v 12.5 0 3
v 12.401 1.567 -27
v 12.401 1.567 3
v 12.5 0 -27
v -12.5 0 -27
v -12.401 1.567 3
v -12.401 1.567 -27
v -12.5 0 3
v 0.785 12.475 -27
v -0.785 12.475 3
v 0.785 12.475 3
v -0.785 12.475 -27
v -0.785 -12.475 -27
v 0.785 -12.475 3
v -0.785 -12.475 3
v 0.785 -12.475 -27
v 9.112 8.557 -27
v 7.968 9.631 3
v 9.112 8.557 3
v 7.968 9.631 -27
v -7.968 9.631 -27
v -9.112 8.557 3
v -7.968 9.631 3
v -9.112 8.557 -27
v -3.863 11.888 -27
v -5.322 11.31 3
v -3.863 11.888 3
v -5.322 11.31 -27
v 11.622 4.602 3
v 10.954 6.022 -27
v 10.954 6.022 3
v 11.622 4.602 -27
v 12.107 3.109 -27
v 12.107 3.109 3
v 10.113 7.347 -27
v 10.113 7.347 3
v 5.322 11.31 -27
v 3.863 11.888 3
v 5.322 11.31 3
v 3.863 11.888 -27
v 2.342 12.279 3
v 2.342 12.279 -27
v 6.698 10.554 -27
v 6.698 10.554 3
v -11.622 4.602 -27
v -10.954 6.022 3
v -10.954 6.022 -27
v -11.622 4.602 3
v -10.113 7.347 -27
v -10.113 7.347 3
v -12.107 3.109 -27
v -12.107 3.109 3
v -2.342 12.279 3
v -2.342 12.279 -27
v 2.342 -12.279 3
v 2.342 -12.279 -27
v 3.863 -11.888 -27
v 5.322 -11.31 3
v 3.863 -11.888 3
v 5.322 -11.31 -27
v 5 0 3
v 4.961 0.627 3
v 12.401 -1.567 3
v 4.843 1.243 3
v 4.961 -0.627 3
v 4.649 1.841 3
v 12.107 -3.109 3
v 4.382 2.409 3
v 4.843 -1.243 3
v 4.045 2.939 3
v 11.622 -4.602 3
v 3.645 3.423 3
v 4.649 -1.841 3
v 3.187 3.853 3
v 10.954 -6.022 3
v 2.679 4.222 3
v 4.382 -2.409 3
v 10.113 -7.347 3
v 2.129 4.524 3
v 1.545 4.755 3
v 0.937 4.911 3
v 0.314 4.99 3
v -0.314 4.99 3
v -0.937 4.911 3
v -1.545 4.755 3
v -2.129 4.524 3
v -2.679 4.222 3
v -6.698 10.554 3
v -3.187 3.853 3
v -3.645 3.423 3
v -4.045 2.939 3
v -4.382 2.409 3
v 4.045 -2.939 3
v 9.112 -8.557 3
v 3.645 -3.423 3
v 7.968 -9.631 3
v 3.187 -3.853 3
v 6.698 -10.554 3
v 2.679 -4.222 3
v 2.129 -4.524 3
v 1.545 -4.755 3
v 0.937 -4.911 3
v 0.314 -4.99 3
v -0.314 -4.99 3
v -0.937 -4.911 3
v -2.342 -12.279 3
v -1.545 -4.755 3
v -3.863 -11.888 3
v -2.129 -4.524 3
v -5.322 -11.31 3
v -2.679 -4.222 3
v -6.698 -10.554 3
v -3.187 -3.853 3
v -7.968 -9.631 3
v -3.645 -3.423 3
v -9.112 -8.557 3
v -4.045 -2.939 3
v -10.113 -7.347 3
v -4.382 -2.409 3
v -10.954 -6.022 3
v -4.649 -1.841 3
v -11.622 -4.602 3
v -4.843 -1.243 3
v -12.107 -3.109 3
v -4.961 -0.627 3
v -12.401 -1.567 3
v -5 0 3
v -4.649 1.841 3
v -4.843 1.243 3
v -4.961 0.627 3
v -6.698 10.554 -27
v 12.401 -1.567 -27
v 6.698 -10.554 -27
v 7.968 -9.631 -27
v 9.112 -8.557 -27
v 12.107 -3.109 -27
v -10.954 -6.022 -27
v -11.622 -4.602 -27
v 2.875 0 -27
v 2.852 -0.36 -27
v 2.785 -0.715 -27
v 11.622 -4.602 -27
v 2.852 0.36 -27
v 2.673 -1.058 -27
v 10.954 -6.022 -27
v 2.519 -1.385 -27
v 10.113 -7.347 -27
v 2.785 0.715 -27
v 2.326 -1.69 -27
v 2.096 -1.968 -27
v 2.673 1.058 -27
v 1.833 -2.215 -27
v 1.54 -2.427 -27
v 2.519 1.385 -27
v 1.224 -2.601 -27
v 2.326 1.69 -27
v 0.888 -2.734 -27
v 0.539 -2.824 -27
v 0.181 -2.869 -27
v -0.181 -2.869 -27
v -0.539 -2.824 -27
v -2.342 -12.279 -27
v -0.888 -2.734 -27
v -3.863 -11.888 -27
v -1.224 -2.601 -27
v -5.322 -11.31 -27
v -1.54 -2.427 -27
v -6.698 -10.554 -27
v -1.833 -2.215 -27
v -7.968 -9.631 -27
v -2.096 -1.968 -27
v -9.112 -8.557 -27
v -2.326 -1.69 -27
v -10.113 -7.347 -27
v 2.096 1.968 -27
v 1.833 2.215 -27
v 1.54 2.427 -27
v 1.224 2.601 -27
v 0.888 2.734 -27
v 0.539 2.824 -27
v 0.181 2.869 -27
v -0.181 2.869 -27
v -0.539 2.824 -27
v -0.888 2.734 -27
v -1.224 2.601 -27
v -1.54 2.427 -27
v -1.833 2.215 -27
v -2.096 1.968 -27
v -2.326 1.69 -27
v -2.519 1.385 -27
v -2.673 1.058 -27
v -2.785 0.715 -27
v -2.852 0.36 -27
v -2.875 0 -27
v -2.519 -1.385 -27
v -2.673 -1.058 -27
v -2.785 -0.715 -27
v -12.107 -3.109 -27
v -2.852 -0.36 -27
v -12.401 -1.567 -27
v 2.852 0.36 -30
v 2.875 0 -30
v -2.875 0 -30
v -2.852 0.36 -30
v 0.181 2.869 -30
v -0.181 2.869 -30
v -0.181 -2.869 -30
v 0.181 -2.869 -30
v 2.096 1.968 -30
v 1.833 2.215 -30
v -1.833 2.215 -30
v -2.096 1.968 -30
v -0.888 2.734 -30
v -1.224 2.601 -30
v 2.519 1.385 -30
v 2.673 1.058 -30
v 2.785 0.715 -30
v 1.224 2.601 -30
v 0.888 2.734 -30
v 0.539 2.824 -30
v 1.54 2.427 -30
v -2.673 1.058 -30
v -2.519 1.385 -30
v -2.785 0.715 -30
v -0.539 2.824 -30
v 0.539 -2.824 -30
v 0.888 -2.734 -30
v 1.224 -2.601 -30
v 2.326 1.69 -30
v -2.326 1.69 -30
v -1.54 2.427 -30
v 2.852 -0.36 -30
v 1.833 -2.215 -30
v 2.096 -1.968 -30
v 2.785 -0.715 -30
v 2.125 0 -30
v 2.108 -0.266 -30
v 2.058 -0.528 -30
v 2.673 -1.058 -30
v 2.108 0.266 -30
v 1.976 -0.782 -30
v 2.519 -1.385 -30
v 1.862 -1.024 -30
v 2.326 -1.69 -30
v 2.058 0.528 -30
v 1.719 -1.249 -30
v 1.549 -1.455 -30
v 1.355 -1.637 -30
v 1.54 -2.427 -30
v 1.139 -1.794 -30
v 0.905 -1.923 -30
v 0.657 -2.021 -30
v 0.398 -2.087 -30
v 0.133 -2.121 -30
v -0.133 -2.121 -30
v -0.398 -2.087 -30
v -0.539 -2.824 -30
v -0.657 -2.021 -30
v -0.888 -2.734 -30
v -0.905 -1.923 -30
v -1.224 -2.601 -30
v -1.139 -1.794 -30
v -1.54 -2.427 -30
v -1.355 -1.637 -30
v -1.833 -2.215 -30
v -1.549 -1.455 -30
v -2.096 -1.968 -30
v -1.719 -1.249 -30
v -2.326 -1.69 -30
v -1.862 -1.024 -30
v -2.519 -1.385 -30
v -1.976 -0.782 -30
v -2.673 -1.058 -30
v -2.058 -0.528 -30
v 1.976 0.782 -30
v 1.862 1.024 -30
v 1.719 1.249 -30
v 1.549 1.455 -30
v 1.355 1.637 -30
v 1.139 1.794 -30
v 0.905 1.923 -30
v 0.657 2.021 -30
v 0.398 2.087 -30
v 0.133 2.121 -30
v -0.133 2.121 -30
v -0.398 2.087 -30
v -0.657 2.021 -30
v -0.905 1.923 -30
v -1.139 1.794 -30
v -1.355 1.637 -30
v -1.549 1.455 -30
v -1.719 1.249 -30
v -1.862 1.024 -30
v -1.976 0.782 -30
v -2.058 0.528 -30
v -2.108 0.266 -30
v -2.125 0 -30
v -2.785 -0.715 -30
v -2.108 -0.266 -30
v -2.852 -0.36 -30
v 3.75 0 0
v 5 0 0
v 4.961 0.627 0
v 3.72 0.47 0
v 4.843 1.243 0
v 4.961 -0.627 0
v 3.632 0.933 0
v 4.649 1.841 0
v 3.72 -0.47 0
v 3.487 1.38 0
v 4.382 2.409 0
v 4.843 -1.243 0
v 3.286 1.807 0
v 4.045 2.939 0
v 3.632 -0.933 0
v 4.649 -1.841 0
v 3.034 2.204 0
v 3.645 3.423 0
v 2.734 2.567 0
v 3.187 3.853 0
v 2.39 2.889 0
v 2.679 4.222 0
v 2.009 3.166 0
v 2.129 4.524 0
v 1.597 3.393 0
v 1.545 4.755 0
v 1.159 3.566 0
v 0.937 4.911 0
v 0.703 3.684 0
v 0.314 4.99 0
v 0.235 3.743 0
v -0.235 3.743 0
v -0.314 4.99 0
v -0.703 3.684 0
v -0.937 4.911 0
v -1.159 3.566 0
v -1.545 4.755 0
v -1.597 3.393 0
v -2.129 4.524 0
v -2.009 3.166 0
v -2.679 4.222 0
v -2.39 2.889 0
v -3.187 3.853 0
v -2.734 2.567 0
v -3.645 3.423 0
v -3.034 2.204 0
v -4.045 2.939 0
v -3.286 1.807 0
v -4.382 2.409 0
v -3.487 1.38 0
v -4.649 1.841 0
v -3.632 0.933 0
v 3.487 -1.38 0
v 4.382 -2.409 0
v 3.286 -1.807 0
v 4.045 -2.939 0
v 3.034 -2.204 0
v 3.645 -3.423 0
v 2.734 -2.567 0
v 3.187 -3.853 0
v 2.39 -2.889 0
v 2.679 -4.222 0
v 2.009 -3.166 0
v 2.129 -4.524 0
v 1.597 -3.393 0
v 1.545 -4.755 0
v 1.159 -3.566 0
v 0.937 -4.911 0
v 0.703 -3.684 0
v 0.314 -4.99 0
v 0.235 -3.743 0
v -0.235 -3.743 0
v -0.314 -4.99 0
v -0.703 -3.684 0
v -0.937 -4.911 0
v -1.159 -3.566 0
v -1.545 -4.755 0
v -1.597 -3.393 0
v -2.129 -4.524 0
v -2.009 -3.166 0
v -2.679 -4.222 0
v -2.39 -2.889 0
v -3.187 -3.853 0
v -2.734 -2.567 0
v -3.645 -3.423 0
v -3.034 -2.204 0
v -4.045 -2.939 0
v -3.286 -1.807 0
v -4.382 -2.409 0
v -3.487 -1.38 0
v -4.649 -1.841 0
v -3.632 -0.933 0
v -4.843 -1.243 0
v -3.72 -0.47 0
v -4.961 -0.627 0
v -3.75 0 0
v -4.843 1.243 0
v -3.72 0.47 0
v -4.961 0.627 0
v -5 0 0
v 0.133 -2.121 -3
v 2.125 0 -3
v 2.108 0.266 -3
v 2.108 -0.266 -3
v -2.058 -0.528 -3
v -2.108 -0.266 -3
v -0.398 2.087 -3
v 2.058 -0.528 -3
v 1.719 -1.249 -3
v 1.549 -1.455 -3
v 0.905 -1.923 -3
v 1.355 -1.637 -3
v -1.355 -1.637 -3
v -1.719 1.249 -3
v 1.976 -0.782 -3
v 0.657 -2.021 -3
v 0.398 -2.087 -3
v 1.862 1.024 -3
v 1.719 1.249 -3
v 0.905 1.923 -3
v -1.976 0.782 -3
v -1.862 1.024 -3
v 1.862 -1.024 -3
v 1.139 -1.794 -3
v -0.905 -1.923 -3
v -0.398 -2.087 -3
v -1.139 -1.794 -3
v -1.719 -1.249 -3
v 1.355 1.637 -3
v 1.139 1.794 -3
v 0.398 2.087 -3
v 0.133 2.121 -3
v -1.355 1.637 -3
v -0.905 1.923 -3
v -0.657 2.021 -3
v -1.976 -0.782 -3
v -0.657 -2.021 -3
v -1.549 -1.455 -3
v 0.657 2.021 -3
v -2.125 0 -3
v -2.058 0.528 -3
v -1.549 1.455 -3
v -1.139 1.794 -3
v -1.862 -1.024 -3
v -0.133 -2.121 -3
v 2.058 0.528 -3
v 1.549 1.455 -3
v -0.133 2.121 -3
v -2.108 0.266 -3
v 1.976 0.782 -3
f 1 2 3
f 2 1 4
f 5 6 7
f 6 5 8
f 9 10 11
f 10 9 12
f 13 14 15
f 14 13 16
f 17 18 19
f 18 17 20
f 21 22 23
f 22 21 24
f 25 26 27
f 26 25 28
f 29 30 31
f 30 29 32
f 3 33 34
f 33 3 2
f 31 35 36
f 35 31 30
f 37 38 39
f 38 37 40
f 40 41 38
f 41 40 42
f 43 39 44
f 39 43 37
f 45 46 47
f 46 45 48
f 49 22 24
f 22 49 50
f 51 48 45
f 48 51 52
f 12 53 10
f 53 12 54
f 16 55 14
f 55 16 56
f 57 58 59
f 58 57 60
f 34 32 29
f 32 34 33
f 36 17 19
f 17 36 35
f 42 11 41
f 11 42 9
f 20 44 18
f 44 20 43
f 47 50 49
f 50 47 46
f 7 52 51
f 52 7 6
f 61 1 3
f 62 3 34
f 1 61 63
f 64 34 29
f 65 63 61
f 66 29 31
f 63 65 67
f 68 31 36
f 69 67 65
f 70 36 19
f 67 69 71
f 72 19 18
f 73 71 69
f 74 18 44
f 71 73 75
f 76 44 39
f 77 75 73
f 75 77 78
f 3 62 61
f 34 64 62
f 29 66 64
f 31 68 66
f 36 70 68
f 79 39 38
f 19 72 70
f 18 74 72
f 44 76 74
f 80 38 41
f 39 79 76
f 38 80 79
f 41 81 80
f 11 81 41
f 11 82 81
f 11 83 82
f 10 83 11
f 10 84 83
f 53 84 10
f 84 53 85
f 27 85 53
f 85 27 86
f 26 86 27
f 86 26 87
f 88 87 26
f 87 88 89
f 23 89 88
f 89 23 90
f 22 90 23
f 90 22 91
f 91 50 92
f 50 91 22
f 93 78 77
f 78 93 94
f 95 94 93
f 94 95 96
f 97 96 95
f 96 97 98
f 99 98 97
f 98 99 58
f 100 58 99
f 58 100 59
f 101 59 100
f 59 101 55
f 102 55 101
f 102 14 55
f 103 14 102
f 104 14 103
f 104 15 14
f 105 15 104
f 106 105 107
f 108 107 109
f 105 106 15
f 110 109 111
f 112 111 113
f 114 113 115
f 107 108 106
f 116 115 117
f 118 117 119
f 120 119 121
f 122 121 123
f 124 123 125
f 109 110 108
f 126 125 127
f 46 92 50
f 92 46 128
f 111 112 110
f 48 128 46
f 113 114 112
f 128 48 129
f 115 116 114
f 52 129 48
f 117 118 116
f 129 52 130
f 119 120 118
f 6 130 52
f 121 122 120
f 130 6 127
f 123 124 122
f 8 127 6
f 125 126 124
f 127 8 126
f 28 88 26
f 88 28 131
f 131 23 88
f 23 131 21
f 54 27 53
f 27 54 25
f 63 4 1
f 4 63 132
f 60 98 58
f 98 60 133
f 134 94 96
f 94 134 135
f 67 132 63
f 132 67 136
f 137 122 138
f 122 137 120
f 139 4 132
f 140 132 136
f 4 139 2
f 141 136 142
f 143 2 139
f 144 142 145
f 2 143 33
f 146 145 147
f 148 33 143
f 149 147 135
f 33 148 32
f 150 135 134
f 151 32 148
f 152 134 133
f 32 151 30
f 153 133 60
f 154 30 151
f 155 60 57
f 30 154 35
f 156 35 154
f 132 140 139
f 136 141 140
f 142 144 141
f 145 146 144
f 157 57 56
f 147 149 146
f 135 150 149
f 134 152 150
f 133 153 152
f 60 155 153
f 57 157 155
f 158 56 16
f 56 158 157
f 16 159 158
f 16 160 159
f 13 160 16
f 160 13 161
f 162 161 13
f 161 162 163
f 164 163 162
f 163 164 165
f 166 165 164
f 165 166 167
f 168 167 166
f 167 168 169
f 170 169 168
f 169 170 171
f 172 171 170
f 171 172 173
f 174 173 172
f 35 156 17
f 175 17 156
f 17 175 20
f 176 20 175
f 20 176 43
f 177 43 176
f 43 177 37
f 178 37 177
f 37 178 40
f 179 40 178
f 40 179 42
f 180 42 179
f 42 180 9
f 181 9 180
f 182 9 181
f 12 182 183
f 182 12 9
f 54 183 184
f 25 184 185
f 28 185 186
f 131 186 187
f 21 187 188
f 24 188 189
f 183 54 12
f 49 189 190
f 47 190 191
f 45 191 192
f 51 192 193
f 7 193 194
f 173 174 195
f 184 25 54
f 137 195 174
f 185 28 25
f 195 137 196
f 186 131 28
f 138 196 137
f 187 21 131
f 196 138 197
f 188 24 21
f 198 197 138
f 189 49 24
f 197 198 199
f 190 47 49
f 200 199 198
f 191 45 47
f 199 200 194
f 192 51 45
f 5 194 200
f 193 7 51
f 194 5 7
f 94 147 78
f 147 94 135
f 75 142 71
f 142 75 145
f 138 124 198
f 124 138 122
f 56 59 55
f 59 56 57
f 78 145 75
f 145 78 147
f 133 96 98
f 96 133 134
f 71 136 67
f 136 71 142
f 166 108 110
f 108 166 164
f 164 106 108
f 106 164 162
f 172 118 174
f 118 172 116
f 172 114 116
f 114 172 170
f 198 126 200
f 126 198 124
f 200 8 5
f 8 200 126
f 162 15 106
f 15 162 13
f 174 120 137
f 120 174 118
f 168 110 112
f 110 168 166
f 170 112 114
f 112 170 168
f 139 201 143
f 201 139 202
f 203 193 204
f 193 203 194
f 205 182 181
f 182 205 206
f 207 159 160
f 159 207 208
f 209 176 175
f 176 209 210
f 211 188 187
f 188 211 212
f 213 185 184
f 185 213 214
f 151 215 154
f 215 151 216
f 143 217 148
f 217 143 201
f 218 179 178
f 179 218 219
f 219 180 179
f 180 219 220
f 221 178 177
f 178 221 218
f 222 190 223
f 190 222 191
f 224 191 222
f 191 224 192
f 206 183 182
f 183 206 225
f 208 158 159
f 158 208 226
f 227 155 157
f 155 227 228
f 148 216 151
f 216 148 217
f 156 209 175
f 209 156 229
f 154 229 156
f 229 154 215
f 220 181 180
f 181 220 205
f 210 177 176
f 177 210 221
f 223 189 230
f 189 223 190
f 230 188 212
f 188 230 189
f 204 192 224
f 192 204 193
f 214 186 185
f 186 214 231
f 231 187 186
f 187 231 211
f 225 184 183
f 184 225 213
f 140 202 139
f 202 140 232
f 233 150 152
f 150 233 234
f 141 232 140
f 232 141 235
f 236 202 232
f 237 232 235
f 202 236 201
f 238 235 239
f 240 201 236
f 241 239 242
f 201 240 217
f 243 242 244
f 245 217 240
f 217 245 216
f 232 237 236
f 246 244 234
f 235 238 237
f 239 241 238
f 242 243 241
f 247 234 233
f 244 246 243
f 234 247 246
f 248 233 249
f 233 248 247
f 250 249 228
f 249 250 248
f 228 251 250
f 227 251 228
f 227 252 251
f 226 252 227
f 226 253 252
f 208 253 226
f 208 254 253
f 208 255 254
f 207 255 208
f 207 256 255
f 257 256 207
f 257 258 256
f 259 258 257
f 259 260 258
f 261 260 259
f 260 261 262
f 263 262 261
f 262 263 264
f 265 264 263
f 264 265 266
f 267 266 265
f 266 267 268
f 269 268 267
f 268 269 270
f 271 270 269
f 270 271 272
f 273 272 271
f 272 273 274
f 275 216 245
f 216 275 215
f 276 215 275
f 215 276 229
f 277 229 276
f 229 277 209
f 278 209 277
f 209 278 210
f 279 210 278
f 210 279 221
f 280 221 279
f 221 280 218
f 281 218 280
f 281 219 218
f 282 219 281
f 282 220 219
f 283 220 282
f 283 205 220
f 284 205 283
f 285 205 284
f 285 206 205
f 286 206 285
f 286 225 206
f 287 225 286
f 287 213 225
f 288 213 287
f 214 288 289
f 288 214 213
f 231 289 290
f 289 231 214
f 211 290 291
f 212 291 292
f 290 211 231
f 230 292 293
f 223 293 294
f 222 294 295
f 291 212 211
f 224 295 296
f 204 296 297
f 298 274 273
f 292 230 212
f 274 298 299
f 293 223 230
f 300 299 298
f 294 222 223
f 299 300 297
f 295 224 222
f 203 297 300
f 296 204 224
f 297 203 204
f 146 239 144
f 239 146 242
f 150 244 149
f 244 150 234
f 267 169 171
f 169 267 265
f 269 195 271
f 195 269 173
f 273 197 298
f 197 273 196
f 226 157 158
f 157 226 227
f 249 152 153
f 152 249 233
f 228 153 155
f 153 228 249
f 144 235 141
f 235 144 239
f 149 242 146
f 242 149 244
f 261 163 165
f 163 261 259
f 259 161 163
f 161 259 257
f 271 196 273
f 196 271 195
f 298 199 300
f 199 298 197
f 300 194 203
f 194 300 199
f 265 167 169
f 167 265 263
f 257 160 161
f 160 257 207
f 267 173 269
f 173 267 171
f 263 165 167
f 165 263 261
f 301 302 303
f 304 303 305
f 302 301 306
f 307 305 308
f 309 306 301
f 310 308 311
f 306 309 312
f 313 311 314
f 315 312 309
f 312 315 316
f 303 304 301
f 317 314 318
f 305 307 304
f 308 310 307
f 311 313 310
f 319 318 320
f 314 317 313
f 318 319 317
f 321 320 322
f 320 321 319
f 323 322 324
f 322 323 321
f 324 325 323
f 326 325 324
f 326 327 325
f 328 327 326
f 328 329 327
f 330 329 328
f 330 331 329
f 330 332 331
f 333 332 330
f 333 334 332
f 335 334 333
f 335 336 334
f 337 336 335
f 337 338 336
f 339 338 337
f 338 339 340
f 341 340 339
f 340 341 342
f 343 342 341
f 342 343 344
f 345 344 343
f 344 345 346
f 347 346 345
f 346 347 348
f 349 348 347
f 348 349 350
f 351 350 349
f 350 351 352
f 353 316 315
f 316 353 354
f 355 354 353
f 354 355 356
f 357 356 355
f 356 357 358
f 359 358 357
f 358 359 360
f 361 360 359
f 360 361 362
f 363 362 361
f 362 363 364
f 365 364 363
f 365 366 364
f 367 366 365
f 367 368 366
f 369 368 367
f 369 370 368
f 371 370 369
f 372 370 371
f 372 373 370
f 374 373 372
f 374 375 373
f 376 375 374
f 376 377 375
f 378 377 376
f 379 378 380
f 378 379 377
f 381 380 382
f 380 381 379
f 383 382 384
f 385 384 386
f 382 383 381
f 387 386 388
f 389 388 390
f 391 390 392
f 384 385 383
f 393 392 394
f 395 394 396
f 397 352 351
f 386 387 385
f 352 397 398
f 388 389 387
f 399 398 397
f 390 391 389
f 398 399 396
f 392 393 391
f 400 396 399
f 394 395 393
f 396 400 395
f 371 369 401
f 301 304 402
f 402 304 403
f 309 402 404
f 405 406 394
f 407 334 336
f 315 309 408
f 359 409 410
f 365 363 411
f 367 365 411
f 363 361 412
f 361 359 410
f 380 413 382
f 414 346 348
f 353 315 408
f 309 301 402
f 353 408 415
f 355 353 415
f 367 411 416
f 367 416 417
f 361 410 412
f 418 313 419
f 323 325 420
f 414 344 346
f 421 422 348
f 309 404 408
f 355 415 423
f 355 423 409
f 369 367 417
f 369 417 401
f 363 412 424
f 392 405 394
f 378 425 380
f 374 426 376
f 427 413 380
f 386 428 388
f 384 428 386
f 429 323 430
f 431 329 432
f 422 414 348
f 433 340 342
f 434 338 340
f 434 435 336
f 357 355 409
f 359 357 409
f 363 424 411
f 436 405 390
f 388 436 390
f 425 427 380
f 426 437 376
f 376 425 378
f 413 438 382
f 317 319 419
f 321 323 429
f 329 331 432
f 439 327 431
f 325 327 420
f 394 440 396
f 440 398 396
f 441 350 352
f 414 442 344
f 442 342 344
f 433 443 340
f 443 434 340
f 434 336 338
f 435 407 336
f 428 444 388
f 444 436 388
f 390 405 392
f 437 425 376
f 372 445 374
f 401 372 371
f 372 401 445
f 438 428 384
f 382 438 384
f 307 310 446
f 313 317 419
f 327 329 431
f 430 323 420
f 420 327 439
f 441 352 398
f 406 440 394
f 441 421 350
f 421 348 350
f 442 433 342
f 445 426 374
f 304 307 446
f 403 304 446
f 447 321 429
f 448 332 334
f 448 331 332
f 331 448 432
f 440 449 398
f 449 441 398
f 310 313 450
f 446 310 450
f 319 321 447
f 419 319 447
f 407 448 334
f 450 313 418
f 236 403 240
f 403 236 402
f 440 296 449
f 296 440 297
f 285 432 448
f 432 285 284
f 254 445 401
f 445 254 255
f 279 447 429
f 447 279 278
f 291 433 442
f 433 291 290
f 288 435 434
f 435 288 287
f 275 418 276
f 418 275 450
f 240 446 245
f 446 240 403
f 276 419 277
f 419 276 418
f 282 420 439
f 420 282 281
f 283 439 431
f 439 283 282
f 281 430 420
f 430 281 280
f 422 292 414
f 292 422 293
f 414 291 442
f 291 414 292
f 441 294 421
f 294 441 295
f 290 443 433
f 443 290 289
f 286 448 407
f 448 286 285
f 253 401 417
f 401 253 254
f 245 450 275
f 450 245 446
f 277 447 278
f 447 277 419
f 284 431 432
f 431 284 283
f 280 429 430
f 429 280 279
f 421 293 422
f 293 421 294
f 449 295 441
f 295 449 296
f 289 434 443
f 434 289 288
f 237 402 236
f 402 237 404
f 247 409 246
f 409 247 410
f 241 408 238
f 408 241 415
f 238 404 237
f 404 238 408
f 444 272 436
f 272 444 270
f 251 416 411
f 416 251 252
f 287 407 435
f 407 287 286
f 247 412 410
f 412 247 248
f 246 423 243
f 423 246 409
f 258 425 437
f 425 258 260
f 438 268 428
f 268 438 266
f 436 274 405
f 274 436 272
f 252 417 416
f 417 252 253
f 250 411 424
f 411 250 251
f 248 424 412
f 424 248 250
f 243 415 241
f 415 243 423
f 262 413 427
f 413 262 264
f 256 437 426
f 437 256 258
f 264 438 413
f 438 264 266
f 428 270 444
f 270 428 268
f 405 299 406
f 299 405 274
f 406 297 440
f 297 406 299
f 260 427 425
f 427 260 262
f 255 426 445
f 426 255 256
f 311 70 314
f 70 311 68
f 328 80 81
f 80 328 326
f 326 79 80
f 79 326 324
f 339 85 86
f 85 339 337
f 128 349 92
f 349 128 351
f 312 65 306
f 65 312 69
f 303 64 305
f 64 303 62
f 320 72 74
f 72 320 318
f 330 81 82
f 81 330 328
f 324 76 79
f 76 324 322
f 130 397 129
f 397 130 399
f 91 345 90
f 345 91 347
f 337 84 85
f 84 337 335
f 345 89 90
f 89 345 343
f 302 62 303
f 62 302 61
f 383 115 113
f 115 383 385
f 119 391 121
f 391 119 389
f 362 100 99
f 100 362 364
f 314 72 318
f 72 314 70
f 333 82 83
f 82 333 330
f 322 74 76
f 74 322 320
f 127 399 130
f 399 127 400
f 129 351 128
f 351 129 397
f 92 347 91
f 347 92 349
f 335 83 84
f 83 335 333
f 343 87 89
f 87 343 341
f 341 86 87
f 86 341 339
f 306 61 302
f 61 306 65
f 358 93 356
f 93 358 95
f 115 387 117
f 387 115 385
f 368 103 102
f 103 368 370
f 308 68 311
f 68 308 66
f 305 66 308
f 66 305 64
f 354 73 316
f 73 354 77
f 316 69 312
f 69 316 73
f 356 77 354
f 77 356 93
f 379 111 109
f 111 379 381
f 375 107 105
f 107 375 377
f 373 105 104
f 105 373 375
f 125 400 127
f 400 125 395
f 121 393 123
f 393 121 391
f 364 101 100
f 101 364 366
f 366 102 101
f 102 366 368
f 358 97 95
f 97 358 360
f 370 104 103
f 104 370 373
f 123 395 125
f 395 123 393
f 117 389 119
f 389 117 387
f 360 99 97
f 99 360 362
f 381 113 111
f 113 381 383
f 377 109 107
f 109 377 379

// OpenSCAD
$fn = 50;

difference() {
	union() {
		translate(v = [0, 0, -27.0]) {
			cylinder(h = 30, r = 12.5);
		}
		#translate(v = [0, 0, -30.0]) {
			cylinder(h = 30, r = 2.875);
		}
	}
	union() {
		translate(v = [0, 0, 0]) {
			rotate(a = [0, 0, 0]) {
				difference() {
					union() {
						translate(v = [0, 0, -30.0]) {
							cylinder(h = 30, r = 2.0);
						}
						translate(v = [0, 0, -3]) {
							cylinder(h = 3, r1 = 2.125, r2 = 3.75);
						}
						translate(v = [0, 0, -30.0]) {
							cylinder(h = 30, r = 2.125);
						}
						translate(v = [0, 0, -30.0]) {
							cylinder(h = 30, r = 2.0);
						}
					}
					union();
				}
			}
		}
		#cylinder(h = 3, r = 5.0);
	}
}
